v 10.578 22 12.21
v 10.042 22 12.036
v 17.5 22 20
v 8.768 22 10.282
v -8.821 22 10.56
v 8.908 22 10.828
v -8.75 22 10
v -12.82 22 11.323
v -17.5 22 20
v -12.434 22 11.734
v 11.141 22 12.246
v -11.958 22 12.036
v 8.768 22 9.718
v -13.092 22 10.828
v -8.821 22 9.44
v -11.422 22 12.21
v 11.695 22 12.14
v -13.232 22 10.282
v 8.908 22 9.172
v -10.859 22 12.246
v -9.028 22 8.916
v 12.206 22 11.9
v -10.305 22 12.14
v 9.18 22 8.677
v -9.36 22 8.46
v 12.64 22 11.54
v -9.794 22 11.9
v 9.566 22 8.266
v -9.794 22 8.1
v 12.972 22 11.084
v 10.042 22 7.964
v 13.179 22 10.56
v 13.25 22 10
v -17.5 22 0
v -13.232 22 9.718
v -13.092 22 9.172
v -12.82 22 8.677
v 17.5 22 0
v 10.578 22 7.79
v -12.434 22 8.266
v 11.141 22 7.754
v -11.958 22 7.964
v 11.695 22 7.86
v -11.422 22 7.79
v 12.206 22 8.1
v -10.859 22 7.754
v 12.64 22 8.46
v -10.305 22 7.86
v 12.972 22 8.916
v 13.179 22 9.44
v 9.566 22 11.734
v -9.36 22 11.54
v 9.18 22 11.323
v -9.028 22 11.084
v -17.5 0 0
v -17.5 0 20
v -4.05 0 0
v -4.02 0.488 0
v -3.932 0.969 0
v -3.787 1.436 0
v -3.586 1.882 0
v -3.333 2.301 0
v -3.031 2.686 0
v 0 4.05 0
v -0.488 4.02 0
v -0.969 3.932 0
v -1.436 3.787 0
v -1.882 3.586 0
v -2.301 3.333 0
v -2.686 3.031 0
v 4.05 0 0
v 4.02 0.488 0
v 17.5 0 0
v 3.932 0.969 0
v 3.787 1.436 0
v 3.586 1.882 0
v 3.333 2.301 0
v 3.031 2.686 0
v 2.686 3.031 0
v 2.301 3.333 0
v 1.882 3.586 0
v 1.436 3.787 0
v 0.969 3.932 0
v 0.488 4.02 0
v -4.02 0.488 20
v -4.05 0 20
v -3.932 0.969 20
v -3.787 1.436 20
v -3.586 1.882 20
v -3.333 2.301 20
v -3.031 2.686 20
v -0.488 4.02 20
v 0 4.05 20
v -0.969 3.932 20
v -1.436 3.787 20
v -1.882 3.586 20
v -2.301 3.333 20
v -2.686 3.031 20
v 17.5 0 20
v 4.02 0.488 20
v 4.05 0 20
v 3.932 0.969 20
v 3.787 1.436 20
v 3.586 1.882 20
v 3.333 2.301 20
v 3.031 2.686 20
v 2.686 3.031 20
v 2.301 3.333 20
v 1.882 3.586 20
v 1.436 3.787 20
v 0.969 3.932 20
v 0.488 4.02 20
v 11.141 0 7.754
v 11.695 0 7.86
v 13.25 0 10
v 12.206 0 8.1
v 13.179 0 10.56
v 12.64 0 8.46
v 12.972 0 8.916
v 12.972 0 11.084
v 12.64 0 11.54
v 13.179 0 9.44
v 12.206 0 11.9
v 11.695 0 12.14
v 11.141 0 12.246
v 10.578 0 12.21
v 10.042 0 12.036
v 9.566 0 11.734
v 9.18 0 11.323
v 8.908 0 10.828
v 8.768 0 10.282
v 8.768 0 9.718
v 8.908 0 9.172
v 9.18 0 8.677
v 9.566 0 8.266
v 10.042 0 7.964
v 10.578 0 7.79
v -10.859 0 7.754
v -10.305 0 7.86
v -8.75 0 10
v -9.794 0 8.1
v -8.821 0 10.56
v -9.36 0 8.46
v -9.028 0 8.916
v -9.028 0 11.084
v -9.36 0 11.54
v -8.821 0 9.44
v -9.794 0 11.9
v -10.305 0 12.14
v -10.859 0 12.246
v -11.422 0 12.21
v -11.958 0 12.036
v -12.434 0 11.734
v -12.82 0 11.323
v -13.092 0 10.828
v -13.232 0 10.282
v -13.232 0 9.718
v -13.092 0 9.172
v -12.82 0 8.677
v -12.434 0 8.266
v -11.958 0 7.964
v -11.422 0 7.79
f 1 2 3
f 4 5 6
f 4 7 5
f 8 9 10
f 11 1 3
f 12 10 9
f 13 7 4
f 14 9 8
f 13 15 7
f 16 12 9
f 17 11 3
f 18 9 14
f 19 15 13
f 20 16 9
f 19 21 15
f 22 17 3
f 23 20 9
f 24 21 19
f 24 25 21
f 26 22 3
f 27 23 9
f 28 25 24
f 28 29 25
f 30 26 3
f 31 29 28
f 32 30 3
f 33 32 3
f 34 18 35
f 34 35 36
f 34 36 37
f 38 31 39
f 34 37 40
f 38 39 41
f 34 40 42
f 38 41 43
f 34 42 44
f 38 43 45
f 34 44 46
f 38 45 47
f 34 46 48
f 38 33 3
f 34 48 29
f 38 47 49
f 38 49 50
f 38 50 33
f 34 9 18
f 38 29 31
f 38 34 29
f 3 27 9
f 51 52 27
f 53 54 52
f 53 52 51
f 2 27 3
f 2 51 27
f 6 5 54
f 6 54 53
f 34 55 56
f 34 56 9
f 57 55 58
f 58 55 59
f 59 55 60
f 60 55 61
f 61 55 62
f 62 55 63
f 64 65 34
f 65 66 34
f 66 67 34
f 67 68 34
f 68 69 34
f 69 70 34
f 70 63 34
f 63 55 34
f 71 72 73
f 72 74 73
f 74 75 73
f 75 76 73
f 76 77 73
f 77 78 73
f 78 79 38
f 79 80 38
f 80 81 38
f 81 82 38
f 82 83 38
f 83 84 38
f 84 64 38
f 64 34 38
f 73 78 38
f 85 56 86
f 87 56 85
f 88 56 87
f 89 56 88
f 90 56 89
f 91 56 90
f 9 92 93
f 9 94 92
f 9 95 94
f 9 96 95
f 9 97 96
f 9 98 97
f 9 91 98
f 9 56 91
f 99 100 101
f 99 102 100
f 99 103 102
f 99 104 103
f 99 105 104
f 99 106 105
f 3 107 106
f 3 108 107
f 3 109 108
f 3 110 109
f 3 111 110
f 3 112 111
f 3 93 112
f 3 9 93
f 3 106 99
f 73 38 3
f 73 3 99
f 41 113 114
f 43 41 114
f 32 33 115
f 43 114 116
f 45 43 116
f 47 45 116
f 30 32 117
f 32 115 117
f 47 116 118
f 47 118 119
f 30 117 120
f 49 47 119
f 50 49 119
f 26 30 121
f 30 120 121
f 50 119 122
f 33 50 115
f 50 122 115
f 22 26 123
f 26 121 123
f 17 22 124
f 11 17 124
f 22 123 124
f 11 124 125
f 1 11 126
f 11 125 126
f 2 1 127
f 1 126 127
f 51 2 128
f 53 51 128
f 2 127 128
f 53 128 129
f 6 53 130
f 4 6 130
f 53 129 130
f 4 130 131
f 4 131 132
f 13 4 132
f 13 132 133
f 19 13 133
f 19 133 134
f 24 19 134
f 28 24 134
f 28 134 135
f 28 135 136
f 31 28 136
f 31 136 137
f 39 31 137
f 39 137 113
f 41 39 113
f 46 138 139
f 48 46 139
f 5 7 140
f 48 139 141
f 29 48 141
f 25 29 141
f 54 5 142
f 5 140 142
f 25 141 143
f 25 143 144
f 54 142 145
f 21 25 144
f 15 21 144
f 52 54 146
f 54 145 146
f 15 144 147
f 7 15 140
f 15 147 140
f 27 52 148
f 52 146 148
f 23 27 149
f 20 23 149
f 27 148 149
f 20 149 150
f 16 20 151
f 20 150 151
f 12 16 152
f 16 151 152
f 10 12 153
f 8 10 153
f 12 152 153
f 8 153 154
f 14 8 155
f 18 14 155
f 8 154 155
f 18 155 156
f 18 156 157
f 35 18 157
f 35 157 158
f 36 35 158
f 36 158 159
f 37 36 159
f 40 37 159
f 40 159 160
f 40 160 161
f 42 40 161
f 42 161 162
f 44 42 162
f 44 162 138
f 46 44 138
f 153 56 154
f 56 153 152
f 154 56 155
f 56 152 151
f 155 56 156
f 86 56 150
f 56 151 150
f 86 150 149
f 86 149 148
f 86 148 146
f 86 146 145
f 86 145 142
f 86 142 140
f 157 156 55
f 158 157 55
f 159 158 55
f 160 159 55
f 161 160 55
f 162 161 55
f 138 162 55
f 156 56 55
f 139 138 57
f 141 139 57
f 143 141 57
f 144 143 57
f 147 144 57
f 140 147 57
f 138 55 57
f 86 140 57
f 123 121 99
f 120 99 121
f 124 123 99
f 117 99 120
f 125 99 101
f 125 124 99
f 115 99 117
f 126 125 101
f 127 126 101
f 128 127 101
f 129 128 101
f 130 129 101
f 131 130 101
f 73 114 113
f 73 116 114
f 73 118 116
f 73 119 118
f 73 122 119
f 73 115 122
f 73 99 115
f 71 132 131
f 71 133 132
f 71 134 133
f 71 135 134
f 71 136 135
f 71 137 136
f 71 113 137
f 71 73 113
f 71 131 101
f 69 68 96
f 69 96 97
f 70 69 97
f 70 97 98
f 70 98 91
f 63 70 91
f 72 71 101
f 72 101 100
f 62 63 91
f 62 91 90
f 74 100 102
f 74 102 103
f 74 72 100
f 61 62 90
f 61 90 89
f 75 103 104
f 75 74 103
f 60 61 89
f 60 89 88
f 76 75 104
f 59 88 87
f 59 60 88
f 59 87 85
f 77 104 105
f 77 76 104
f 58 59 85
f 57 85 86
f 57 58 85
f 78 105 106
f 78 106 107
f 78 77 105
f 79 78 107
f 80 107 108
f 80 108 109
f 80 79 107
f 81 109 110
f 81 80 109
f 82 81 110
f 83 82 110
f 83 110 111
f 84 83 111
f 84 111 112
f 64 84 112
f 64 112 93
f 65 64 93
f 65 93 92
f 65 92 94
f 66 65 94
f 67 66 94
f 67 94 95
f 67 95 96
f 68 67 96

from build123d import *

# Parameters (mm, degrees)
PAD_DEPTH    = 20
SKETCH001_R  = 2.25
POCKET_DEPTH = 22.001


with BuildPart() as part:
    # Sketch → Pad (new body)
    with BuildSketch(Plane.XY):
        with BuildLine():
            Line((-17.5, 22), (17.5, 22))
            Line((17.5, 22), (17.5, 0))
            Line((17.5, 0), (4.05, 0))
            ThreePointArc((4.05, 0), (0, 4.05), (-4.05, 0))
            Line((-17.5, 0), (-4.05, 0))
            Line((-17.5, 0), (-17.5, 22))
        make_face()
    extrude(amount=PAD_DEPTH)

    # Sketch001 → Pocket (cut, through all)
    with BuildSketch(Plane.XZ):
        with Locations((-11, 10)):
            Circle(SKETCH001_R)
        with Locations((11, 10)):
            Circle(SKETCH001_R)
    extrude(amount=-POCKET_DEPTH, mode=Mode.SUBTRACT)


solid = part.part
